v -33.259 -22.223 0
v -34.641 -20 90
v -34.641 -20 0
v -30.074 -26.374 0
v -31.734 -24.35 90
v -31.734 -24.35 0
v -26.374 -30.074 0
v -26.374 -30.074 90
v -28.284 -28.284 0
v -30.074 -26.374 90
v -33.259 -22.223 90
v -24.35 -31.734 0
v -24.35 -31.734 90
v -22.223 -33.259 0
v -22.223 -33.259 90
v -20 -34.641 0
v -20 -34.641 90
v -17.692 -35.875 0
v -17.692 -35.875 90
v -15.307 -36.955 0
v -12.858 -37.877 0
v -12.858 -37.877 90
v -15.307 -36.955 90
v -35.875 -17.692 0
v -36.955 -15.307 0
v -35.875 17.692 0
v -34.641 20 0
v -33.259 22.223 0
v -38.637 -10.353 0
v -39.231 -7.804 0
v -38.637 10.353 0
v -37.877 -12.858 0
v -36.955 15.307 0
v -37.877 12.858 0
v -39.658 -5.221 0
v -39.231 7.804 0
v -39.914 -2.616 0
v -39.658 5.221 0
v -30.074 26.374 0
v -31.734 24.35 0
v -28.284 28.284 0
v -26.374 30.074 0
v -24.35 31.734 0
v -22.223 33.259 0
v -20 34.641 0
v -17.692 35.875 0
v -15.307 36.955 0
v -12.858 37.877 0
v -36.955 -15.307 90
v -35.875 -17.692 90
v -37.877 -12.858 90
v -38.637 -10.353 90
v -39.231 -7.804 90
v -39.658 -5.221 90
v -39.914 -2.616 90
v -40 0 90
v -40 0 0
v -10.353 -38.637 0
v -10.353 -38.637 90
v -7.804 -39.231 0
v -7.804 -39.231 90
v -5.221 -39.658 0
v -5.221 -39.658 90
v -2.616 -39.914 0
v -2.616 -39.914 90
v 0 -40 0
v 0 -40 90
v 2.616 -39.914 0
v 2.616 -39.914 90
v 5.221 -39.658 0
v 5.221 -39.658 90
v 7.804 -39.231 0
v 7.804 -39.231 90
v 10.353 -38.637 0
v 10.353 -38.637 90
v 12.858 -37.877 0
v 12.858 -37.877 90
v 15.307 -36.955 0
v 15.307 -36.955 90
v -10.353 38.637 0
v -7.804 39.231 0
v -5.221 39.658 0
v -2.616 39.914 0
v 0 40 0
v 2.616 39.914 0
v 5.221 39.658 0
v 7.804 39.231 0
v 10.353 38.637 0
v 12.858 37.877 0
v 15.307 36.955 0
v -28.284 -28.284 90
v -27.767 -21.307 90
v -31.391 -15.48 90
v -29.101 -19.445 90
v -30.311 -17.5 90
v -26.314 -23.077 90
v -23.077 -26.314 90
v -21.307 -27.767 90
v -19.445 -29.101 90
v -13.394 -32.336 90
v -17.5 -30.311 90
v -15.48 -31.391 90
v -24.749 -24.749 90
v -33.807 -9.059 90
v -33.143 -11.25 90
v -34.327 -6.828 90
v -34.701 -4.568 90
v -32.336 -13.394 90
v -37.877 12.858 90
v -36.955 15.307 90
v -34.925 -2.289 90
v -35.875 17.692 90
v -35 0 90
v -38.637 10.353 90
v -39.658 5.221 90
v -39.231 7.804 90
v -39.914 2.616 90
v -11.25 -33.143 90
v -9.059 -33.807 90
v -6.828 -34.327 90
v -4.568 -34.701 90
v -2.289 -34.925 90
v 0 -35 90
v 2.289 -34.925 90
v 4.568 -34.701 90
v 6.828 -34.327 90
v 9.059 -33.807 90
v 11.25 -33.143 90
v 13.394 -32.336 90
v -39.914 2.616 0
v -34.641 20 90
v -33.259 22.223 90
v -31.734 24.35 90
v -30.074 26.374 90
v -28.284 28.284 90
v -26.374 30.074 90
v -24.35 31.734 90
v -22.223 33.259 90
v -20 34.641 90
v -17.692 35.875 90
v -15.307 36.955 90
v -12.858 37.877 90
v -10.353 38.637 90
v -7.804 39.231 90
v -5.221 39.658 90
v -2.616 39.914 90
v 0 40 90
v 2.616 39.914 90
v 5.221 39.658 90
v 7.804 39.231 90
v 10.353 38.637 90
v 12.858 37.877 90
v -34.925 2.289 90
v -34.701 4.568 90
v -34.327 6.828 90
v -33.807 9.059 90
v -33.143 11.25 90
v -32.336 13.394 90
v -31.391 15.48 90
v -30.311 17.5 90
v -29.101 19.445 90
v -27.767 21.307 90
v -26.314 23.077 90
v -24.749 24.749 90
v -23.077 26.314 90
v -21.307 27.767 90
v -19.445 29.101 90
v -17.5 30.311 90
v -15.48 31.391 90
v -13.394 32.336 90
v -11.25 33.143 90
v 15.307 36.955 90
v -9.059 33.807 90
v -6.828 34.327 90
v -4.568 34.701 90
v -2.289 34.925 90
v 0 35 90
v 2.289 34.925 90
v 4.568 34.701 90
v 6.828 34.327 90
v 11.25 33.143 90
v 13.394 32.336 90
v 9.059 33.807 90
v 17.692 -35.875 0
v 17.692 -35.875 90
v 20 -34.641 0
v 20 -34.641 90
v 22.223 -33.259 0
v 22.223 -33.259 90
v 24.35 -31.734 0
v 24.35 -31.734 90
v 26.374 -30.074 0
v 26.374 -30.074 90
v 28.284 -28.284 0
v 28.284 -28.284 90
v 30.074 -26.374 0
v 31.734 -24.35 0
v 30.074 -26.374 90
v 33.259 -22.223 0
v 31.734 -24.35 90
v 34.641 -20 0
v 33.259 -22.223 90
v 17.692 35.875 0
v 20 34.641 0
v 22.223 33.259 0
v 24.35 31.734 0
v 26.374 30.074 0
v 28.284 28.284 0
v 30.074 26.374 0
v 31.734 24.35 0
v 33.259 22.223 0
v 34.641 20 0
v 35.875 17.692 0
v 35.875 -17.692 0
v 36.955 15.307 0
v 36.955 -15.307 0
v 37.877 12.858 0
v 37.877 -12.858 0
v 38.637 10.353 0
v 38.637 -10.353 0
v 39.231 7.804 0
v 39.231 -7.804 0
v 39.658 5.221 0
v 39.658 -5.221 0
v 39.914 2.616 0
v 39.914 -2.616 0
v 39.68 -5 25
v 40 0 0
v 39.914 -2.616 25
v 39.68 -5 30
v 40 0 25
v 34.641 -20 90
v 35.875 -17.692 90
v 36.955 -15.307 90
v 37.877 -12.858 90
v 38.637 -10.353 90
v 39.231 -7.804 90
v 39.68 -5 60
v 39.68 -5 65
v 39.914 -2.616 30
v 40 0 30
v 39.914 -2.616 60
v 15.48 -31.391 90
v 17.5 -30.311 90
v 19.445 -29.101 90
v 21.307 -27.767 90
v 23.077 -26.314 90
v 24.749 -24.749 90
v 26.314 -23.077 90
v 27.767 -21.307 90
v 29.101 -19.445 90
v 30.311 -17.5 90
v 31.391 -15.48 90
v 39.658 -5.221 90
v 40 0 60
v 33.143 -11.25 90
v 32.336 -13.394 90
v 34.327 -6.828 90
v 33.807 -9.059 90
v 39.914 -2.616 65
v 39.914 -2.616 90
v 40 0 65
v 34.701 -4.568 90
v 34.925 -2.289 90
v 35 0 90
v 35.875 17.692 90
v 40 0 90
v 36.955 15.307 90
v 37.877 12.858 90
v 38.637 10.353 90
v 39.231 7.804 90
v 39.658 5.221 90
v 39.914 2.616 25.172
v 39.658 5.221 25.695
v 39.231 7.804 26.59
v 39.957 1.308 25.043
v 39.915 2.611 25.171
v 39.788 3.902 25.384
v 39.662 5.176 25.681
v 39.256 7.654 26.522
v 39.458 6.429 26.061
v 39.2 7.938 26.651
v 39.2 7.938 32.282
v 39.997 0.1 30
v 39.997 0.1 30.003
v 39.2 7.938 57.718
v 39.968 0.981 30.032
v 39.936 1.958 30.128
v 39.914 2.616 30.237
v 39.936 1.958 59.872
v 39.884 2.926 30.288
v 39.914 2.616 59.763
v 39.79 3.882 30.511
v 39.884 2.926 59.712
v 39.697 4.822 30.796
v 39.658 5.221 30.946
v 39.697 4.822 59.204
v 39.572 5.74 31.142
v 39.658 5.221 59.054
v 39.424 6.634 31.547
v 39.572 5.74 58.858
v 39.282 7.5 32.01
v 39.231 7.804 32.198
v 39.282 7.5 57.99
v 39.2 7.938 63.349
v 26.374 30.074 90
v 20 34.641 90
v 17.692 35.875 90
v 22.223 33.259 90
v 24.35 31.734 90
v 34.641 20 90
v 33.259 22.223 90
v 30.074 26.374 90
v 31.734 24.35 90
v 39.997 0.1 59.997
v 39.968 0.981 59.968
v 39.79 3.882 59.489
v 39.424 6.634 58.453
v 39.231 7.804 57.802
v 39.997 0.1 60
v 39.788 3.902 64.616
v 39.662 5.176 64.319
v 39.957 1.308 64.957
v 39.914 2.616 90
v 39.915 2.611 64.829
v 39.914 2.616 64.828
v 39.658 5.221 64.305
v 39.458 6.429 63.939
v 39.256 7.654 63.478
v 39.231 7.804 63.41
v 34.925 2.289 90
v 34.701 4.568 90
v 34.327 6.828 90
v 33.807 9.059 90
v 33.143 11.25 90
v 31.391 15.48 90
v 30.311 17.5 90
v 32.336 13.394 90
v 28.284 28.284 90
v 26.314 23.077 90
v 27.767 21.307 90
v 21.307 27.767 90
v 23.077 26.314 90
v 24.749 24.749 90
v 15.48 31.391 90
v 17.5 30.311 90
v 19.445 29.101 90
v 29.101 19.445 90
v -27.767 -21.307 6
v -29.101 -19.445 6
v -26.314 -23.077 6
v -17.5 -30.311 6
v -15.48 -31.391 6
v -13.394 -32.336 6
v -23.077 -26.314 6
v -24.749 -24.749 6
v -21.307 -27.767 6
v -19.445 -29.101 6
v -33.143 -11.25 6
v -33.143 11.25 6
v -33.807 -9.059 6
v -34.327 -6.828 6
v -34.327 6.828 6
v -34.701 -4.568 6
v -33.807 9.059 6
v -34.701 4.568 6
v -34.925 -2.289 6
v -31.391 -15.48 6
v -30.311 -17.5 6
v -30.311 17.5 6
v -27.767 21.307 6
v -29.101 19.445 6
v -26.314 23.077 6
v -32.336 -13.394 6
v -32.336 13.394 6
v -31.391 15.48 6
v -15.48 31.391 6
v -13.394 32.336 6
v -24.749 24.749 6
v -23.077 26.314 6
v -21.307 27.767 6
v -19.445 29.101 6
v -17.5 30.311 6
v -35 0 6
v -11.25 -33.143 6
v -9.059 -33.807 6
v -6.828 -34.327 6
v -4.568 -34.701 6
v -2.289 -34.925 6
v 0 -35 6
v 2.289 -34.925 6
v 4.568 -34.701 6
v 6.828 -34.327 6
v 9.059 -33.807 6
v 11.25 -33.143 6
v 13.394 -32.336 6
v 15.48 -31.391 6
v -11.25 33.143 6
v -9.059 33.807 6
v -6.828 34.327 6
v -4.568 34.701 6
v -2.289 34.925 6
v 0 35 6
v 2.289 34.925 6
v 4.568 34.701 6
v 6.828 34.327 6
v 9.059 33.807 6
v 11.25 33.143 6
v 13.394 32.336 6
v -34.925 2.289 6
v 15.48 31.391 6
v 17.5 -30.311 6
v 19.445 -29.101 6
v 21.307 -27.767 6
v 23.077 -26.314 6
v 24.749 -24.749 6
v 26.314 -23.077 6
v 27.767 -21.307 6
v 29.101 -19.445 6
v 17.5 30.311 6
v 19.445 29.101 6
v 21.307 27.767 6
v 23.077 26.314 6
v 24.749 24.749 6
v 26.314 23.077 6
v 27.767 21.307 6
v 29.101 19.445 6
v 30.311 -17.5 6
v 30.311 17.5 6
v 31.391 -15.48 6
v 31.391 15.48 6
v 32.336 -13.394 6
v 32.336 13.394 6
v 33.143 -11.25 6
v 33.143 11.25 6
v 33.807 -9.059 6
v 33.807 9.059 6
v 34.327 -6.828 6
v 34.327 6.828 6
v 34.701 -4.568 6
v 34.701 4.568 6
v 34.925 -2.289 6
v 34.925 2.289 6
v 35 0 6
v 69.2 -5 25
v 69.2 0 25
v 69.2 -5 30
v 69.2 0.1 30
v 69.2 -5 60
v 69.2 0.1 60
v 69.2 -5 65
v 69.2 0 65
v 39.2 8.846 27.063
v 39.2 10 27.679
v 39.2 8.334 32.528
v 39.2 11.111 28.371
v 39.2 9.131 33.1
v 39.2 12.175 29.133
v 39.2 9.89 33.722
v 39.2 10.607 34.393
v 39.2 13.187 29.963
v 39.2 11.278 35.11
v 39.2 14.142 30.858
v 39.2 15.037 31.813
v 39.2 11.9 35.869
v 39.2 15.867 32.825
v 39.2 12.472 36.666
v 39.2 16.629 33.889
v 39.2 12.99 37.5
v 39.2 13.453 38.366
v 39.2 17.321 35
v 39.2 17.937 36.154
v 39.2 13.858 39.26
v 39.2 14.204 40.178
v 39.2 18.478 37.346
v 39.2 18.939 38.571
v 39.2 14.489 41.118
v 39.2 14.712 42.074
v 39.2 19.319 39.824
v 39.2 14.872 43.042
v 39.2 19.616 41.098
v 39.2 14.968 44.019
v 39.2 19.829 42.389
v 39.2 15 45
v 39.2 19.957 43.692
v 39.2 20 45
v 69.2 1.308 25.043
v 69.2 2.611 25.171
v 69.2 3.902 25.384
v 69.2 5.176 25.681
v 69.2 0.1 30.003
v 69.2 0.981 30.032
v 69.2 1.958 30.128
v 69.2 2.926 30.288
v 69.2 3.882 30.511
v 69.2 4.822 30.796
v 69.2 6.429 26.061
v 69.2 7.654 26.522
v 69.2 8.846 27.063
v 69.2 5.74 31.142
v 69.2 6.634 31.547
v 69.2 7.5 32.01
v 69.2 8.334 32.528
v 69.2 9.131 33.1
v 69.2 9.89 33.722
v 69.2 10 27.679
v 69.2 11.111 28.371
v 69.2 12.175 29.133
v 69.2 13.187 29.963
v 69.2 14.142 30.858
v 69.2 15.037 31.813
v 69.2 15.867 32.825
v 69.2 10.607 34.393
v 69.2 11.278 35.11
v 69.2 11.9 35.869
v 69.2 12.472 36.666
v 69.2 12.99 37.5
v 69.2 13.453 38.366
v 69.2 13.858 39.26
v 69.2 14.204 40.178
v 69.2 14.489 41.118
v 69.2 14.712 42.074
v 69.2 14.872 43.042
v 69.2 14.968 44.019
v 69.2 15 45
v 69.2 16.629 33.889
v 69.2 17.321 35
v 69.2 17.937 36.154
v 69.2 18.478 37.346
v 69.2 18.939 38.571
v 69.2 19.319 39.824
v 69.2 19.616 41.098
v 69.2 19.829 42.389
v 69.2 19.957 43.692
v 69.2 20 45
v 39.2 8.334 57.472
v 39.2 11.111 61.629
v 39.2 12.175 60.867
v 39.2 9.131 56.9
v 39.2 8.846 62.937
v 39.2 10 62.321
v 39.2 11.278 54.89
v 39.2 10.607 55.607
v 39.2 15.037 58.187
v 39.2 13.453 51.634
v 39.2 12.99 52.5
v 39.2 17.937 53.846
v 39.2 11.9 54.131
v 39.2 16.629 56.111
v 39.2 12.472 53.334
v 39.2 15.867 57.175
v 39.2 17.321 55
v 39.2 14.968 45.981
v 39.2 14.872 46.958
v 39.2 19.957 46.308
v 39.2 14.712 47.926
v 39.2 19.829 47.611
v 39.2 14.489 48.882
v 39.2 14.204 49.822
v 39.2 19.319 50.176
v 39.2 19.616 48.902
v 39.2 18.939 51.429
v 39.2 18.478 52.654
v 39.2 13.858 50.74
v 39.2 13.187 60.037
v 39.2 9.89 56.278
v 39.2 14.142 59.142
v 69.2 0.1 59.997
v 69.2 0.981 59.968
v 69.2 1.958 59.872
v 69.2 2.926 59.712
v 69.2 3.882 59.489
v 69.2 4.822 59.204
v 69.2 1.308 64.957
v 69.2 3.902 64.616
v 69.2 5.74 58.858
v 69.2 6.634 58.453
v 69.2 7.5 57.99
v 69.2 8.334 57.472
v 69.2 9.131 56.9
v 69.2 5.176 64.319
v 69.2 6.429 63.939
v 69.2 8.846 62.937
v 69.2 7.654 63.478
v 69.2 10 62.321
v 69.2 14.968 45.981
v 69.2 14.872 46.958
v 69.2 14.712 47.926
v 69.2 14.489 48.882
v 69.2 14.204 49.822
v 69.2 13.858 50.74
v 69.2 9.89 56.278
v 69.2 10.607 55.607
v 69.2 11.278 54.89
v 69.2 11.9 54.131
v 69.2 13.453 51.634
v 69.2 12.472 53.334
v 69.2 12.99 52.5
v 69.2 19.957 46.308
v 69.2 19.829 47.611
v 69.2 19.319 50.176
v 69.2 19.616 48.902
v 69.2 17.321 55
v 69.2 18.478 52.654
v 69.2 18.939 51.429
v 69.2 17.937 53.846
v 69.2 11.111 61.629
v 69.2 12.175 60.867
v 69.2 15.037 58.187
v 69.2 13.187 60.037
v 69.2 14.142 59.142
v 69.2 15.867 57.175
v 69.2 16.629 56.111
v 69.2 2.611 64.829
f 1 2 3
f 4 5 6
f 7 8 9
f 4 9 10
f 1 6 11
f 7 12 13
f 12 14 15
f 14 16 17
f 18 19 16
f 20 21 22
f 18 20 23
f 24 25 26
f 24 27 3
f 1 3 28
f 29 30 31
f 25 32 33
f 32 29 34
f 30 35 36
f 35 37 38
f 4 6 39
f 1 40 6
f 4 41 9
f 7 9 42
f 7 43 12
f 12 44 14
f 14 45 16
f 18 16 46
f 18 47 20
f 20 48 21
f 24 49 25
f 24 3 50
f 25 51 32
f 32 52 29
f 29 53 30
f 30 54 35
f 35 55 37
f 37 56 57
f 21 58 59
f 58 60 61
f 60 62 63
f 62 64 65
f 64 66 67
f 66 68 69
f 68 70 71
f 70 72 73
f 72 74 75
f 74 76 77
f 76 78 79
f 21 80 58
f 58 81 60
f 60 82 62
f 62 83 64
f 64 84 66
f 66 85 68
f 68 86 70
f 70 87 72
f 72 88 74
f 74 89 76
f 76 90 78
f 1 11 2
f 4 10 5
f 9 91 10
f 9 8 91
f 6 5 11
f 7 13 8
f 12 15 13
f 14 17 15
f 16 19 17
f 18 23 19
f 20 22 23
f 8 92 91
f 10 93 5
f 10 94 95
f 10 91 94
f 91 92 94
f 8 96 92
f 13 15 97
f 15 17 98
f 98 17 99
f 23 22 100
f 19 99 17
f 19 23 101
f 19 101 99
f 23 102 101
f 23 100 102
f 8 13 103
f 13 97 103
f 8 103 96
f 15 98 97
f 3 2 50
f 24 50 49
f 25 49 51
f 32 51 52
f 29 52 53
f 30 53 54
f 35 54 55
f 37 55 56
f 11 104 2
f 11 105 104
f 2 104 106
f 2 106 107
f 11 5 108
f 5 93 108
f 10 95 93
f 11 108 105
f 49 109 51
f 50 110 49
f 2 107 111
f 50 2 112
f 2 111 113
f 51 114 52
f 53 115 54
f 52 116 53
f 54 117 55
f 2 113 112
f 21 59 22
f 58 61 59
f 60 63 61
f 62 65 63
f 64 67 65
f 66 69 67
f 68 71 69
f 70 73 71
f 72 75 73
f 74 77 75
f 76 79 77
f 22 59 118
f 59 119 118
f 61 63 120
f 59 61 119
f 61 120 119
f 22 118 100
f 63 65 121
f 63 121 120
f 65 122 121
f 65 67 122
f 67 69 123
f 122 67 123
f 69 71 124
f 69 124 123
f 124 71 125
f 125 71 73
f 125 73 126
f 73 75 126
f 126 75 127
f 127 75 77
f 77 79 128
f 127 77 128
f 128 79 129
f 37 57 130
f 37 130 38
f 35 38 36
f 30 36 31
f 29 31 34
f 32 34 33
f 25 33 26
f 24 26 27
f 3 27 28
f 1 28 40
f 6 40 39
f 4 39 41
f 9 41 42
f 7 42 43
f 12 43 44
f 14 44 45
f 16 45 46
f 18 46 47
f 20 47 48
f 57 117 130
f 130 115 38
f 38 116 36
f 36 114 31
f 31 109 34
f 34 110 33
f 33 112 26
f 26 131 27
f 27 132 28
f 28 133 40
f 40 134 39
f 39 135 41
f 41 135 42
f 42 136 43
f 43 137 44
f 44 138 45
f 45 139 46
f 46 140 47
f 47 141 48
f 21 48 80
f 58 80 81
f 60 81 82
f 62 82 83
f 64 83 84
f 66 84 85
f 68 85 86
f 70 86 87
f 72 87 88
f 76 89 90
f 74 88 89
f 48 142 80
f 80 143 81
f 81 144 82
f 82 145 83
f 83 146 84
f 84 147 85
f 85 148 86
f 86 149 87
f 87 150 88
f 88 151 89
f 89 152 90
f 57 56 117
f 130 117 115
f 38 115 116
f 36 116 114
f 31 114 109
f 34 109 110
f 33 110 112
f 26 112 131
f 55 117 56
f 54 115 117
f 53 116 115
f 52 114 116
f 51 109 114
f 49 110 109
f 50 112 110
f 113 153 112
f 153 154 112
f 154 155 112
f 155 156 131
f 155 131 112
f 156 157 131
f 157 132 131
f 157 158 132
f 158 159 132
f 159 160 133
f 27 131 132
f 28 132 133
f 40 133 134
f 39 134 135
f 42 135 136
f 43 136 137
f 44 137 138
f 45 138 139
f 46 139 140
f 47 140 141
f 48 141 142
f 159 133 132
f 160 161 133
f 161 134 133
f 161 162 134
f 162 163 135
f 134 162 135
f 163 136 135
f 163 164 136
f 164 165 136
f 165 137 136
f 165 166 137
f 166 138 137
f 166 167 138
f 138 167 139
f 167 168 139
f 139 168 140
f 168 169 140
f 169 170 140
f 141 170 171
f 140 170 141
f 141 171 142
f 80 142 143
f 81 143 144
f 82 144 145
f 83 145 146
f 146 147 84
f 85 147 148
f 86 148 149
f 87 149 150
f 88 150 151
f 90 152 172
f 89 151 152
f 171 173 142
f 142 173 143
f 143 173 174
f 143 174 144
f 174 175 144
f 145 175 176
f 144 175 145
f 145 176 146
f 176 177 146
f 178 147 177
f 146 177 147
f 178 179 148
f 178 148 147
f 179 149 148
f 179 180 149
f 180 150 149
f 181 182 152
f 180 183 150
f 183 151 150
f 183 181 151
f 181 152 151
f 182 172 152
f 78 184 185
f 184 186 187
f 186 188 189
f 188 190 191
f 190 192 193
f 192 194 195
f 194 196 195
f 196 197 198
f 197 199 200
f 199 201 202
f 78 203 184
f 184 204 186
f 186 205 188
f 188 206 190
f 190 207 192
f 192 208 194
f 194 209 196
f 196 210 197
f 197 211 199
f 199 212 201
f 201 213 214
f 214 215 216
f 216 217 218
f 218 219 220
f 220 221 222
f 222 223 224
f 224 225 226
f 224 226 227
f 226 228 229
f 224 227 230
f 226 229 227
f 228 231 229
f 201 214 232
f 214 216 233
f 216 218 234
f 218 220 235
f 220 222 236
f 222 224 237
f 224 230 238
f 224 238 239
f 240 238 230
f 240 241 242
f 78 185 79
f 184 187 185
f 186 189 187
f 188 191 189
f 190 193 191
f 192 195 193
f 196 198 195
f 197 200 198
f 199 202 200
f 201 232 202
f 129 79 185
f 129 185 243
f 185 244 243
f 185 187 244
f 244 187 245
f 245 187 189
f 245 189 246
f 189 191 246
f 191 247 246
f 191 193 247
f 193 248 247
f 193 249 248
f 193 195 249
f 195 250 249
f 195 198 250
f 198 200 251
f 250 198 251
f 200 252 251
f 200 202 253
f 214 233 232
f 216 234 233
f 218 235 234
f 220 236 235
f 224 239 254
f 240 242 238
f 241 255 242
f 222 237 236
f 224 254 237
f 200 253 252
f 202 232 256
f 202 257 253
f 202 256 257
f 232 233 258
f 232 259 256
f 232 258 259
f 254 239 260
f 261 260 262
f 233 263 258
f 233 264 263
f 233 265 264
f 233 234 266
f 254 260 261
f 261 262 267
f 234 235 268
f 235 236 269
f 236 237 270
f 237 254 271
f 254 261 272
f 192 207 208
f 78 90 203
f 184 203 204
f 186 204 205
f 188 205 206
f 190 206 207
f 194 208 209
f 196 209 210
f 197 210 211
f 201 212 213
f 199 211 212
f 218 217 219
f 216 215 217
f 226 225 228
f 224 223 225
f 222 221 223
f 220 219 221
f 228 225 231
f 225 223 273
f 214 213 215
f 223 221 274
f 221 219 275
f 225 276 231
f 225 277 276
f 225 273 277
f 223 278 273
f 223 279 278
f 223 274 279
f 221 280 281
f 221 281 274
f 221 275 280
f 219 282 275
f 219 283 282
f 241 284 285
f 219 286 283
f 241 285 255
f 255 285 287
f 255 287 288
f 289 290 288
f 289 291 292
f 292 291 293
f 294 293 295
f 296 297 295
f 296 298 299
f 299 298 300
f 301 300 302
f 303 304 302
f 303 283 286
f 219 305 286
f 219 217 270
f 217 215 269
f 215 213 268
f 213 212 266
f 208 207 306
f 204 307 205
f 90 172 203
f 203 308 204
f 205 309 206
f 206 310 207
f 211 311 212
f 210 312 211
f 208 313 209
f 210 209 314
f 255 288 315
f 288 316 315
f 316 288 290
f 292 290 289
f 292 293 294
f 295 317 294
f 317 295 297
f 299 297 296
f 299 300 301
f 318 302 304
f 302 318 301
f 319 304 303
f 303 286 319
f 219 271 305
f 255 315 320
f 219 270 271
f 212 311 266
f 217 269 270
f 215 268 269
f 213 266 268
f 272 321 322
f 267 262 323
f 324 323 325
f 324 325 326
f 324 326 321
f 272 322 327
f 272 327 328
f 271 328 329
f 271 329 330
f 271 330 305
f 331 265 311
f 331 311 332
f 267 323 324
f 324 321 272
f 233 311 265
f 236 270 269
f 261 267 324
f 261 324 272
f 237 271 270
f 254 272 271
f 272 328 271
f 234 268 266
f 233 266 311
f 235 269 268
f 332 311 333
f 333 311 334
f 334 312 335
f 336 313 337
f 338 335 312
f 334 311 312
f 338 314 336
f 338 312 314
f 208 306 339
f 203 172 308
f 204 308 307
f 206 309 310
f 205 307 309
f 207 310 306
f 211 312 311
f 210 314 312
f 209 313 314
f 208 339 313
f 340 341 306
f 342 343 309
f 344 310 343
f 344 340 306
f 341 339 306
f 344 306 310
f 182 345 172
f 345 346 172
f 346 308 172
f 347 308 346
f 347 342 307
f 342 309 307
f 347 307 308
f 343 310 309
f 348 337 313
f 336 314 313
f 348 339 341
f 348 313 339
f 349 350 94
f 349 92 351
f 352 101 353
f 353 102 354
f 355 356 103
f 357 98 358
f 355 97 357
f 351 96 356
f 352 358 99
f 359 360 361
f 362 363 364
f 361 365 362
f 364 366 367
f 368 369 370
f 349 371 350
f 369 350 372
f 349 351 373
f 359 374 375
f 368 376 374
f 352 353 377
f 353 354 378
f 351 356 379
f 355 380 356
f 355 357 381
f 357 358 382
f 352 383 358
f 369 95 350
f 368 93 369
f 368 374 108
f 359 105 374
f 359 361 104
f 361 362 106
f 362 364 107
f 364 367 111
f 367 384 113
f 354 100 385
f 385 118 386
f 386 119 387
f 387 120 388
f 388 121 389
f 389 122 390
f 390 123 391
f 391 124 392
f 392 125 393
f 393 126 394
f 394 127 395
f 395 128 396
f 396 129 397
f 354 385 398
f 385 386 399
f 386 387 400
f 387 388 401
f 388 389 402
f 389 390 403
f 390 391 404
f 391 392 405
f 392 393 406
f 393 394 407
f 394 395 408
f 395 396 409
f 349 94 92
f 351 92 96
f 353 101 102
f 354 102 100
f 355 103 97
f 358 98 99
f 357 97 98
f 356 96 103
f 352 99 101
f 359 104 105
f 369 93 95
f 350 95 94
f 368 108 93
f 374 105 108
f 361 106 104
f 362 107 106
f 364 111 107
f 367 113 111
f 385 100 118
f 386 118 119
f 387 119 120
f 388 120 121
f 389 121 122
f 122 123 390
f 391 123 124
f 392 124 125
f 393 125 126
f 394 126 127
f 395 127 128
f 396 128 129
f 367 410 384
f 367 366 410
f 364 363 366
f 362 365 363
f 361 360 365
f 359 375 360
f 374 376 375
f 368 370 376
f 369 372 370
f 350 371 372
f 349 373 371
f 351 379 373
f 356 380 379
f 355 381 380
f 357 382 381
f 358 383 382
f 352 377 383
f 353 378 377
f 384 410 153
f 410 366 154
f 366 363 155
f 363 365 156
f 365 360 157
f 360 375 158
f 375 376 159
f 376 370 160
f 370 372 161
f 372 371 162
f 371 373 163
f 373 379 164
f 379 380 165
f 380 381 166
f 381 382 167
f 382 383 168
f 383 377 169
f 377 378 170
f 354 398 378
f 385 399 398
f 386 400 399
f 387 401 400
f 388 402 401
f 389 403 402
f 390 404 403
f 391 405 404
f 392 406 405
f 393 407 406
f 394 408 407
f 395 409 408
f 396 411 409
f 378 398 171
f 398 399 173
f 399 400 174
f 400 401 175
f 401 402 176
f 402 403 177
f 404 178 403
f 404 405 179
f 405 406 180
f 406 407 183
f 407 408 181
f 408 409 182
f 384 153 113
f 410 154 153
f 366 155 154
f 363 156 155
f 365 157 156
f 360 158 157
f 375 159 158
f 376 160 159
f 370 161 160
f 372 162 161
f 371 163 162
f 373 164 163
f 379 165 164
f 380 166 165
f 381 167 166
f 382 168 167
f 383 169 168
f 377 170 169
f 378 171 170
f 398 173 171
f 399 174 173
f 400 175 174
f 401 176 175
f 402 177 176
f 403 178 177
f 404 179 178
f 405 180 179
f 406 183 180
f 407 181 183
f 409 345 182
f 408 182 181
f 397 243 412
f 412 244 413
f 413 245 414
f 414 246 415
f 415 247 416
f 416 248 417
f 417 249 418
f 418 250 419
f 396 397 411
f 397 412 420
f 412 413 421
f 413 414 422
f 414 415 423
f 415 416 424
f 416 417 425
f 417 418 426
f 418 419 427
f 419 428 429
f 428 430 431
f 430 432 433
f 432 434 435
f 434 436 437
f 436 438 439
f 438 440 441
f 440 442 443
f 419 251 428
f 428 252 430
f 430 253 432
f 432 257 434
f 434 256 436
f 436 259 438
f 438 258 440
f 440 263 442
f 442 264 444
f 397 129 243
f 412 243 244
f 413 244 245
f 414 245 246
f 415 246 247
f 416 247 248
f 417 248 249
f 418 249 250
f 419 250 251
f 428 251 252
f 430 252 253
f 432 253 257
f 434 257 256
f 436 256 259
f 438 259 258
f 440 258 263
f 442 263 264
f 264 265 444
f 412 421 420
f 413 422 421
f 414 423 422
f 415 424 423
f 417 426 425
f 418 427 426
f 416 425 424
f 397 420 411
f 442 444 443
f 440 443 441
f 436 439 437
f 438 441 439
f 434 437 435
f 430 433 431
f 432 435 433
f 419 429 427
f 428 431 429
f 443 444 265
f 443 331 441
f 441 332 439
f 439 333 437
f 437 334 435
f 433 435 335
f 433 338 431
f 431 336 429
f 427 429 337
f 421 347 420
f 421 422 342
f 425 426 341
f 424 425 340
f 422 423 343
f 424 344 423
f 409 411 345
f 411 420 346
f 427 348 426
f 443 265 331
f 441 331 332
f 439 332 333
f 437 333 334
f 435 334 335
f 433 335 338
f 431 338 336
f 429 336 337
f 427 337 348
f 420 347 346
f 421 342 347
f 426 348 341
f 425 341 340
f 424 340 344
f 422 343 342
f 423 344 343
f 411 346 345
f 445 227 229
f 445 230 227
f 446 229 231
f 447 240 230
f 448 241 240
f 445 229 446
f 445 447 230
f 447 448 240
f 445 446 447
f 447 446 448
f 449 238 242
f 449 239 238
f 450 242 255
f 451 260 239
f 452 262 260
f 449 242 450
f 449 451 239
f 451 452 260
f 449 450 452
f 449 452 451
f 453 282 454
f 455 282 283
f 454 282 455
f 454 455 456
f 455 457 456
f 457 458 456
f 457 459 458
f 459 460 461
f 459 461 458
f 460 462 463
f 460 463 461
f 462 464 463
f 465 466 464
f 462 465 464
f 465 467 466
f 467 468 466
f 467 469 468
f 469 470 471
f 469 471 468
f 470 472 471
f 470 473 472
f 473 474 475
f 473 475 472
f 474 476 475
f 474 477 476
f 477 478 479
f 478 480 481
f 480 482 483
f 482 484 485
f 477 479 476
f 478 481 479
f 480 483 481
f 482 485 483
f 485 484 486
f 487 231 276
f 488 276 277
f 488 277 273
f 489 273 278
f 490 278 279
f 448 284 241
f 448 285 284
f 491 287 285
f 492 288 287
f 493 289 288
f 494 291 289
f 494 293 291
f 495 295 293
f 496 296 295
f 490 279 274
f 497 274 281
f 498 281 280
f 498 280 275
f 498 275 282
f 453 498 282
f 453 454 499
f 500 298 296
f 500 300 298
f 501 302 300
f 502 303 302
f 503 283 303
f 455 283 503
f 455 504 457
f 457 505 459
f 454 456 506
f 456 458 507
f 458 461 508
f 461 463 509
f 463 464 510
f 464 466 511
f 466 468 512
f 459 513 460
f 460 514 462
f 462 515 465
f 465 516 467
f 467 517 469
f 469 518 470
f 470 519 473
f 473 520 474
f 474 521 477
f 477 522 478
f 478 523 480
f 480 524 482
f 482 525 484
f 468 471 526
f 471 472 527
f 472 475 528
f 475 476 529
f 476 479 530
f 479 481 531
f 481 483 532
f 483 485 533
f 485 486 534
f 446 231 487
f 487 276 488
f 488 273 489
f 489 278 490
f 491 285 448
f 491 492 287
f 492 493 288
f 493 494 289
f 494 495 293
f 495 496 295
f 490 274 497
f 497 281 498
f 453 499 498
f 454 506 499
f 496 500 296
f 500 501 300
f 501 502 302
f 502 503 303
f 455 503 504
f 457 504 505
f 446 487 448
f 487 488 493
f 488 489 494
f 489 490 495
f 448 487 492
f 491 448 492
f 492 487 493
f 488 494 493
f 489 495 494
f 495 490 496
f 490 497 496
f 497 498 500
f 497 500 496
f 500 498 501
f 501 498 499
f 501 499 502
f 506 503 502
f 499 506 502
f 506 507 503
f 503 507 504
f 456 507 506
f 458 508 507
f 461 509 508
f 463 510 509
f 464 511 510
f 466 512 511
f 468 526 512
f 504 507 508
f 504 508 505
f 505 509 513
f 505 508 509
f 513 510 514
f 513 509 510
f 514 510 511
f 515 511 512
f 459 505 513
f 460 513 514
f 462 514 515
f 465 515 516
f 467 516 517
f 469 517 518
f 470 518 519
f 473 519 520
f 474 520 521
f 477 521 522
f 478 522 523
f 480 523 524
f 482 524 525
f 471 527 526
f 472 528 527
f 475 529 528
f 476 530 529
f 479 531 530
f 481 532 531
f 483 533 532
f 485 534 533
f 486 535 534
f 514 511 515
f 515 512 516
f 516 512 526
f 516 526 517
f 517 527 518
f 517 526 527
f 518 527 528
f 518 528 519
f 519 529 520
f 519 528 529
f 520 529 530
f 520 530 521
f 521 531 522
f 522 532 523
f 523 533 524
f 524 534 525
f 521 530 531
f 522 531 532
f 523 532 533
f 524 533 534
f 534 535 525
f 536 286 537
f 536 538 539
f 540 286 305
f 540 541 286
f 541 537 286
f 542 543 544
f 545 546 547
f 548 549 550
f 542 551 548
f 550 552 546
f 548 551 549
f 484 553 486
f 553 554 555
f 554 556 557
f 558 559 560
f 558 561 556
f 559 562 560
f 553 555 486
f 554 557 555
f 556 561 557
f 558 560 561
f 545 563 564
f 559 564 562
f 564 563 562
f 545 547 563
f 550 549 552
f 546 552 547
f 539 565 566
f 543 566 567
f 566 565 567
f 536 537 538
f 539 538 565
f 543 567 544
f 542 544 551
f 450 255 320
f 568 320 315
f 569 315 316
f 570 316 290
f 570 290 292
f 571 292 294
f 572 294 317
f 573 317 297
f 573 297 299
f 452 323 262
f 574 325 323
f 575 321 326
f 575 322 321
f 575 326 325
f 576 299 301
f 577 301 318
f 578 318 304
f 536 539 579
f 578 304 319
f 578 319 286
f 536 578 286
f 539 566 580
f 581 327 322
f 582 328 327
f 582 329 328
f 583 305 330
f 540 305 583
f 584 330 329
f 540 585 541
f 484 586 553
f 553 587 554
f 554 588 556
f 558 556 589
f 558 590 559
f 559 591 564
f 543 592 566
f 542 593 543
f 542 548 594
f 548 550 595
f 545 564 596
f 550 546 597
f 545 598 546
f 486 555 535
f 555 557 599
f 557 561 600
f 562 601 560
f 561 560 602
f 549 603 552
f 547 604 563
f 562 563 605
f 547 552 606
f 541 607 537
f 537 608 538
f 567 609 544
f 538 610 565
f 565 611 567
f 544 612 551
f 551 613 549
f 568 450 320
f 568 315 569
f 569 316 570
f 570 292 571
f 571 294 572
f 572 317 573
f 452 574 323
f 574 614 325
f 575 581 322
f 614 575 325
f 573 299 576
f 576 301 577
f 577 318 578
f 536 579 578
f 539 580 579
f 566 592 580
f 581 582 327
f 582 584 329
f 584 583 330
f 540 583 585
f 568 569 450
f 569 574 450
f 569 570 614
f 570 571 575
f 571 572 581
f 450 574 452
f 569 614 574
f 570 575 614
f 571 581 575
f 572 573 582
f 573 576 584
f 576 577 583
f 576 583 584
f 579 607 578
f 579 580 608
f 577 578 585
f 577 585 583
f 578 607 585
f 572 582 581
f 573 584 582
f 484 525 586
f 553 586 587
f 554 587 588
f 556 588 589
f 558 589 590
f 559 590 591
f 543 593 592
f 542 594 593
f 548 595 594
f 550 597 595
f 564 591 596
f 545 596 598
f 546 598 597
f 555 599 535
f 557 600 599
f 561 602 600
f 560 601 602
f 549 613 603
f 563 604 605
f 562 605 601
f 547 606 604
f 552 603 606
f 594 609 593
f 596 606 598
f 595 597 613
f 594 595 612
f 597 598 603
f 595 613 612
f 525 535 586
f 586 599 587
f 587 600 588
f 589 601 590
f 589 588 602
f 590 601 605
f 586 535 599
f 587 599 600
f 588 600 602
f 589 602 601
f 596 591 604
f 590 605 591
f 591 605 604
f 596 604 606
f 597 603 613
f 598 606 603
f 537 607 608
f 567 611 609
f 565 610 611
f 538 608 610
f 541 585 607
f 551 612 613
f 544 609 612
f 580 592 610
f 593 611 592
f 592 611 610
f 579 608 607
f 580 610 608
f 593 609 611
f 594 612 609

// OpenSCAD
$fn = 96;

// Mug dimensions
outer_d = 80;
inner_d = 70;
outer_r = outer_d / 2;
inner_r = inner_d / 2;
height = 90;
bottom_thickness = 6;

// Handle dimensions/orientation
handle_gap_w = 25;      // inner opening width (radial, X direction)
handle_gap_h = 30;      // inner opening height (Z direction)
handle_thickness = 5;   // handle band thickness
handle_center_z = height / 2;

// Derived handle geometry (YZ-plane profile, then extruded in X)
handle_inner_r = handle_gap_h / 2;                  // 15
handle_outer_r = handle_inner_r + handle_thickness; // 20
handle_attach_x = outer_r - 0.8;                    // slight embed into mug for robust union
handle_outer_x = handle_attach_x + handle_gap_w + handle_thickness;
handle_total_x = handle_outer_x - handle_attach_x;

module mug_body() {
    difference() {
        cylinder(h = height, r = outer_r);
        translate([0, 0, bottom_thickness])
            cylinder(h = height - bottom_thickness + 0.1, r = inner_r);
    }
}

module handle_profile_2d() {
    difference() {
        union() {
            translate([0, handle_center_z])
                intersection() {
                    circle(r = handle_outer_r);
                    translate([0, -handle_outer_r])
                        square([handle_outer_r, 2 * handle_outer_r], center = false);
                }
            translate([-handle_thickness, handle_center_z - handle_outer_r])
                square([handle_thickness, 2 * handle_outer_r], center = false);
        }

        union() {
            translate([0, handle_center_z])
                intersection() {
                    circle(r = handle_inner_r);
                    translate([0, -handle_inner_r])
                        square([handle_inner_r, 2 * handle_inner_r], center = false);
                }
            translate([-handle_thickness - 0.1, handle_center_z - handle_inner_r])
                square([handle_thickness + 0.2, 2 * handle_inner_r], center = false);
        }
    }
}

module handle() {
    translate([handle_attach_x, 0, 0])
        rotate([90, 0, 90])
            linear_extrude(height = handle_total_x, center = false, convexity = 10)
                handle_profile_2d();
}

union() {
    mug_body();
    handle();
}
